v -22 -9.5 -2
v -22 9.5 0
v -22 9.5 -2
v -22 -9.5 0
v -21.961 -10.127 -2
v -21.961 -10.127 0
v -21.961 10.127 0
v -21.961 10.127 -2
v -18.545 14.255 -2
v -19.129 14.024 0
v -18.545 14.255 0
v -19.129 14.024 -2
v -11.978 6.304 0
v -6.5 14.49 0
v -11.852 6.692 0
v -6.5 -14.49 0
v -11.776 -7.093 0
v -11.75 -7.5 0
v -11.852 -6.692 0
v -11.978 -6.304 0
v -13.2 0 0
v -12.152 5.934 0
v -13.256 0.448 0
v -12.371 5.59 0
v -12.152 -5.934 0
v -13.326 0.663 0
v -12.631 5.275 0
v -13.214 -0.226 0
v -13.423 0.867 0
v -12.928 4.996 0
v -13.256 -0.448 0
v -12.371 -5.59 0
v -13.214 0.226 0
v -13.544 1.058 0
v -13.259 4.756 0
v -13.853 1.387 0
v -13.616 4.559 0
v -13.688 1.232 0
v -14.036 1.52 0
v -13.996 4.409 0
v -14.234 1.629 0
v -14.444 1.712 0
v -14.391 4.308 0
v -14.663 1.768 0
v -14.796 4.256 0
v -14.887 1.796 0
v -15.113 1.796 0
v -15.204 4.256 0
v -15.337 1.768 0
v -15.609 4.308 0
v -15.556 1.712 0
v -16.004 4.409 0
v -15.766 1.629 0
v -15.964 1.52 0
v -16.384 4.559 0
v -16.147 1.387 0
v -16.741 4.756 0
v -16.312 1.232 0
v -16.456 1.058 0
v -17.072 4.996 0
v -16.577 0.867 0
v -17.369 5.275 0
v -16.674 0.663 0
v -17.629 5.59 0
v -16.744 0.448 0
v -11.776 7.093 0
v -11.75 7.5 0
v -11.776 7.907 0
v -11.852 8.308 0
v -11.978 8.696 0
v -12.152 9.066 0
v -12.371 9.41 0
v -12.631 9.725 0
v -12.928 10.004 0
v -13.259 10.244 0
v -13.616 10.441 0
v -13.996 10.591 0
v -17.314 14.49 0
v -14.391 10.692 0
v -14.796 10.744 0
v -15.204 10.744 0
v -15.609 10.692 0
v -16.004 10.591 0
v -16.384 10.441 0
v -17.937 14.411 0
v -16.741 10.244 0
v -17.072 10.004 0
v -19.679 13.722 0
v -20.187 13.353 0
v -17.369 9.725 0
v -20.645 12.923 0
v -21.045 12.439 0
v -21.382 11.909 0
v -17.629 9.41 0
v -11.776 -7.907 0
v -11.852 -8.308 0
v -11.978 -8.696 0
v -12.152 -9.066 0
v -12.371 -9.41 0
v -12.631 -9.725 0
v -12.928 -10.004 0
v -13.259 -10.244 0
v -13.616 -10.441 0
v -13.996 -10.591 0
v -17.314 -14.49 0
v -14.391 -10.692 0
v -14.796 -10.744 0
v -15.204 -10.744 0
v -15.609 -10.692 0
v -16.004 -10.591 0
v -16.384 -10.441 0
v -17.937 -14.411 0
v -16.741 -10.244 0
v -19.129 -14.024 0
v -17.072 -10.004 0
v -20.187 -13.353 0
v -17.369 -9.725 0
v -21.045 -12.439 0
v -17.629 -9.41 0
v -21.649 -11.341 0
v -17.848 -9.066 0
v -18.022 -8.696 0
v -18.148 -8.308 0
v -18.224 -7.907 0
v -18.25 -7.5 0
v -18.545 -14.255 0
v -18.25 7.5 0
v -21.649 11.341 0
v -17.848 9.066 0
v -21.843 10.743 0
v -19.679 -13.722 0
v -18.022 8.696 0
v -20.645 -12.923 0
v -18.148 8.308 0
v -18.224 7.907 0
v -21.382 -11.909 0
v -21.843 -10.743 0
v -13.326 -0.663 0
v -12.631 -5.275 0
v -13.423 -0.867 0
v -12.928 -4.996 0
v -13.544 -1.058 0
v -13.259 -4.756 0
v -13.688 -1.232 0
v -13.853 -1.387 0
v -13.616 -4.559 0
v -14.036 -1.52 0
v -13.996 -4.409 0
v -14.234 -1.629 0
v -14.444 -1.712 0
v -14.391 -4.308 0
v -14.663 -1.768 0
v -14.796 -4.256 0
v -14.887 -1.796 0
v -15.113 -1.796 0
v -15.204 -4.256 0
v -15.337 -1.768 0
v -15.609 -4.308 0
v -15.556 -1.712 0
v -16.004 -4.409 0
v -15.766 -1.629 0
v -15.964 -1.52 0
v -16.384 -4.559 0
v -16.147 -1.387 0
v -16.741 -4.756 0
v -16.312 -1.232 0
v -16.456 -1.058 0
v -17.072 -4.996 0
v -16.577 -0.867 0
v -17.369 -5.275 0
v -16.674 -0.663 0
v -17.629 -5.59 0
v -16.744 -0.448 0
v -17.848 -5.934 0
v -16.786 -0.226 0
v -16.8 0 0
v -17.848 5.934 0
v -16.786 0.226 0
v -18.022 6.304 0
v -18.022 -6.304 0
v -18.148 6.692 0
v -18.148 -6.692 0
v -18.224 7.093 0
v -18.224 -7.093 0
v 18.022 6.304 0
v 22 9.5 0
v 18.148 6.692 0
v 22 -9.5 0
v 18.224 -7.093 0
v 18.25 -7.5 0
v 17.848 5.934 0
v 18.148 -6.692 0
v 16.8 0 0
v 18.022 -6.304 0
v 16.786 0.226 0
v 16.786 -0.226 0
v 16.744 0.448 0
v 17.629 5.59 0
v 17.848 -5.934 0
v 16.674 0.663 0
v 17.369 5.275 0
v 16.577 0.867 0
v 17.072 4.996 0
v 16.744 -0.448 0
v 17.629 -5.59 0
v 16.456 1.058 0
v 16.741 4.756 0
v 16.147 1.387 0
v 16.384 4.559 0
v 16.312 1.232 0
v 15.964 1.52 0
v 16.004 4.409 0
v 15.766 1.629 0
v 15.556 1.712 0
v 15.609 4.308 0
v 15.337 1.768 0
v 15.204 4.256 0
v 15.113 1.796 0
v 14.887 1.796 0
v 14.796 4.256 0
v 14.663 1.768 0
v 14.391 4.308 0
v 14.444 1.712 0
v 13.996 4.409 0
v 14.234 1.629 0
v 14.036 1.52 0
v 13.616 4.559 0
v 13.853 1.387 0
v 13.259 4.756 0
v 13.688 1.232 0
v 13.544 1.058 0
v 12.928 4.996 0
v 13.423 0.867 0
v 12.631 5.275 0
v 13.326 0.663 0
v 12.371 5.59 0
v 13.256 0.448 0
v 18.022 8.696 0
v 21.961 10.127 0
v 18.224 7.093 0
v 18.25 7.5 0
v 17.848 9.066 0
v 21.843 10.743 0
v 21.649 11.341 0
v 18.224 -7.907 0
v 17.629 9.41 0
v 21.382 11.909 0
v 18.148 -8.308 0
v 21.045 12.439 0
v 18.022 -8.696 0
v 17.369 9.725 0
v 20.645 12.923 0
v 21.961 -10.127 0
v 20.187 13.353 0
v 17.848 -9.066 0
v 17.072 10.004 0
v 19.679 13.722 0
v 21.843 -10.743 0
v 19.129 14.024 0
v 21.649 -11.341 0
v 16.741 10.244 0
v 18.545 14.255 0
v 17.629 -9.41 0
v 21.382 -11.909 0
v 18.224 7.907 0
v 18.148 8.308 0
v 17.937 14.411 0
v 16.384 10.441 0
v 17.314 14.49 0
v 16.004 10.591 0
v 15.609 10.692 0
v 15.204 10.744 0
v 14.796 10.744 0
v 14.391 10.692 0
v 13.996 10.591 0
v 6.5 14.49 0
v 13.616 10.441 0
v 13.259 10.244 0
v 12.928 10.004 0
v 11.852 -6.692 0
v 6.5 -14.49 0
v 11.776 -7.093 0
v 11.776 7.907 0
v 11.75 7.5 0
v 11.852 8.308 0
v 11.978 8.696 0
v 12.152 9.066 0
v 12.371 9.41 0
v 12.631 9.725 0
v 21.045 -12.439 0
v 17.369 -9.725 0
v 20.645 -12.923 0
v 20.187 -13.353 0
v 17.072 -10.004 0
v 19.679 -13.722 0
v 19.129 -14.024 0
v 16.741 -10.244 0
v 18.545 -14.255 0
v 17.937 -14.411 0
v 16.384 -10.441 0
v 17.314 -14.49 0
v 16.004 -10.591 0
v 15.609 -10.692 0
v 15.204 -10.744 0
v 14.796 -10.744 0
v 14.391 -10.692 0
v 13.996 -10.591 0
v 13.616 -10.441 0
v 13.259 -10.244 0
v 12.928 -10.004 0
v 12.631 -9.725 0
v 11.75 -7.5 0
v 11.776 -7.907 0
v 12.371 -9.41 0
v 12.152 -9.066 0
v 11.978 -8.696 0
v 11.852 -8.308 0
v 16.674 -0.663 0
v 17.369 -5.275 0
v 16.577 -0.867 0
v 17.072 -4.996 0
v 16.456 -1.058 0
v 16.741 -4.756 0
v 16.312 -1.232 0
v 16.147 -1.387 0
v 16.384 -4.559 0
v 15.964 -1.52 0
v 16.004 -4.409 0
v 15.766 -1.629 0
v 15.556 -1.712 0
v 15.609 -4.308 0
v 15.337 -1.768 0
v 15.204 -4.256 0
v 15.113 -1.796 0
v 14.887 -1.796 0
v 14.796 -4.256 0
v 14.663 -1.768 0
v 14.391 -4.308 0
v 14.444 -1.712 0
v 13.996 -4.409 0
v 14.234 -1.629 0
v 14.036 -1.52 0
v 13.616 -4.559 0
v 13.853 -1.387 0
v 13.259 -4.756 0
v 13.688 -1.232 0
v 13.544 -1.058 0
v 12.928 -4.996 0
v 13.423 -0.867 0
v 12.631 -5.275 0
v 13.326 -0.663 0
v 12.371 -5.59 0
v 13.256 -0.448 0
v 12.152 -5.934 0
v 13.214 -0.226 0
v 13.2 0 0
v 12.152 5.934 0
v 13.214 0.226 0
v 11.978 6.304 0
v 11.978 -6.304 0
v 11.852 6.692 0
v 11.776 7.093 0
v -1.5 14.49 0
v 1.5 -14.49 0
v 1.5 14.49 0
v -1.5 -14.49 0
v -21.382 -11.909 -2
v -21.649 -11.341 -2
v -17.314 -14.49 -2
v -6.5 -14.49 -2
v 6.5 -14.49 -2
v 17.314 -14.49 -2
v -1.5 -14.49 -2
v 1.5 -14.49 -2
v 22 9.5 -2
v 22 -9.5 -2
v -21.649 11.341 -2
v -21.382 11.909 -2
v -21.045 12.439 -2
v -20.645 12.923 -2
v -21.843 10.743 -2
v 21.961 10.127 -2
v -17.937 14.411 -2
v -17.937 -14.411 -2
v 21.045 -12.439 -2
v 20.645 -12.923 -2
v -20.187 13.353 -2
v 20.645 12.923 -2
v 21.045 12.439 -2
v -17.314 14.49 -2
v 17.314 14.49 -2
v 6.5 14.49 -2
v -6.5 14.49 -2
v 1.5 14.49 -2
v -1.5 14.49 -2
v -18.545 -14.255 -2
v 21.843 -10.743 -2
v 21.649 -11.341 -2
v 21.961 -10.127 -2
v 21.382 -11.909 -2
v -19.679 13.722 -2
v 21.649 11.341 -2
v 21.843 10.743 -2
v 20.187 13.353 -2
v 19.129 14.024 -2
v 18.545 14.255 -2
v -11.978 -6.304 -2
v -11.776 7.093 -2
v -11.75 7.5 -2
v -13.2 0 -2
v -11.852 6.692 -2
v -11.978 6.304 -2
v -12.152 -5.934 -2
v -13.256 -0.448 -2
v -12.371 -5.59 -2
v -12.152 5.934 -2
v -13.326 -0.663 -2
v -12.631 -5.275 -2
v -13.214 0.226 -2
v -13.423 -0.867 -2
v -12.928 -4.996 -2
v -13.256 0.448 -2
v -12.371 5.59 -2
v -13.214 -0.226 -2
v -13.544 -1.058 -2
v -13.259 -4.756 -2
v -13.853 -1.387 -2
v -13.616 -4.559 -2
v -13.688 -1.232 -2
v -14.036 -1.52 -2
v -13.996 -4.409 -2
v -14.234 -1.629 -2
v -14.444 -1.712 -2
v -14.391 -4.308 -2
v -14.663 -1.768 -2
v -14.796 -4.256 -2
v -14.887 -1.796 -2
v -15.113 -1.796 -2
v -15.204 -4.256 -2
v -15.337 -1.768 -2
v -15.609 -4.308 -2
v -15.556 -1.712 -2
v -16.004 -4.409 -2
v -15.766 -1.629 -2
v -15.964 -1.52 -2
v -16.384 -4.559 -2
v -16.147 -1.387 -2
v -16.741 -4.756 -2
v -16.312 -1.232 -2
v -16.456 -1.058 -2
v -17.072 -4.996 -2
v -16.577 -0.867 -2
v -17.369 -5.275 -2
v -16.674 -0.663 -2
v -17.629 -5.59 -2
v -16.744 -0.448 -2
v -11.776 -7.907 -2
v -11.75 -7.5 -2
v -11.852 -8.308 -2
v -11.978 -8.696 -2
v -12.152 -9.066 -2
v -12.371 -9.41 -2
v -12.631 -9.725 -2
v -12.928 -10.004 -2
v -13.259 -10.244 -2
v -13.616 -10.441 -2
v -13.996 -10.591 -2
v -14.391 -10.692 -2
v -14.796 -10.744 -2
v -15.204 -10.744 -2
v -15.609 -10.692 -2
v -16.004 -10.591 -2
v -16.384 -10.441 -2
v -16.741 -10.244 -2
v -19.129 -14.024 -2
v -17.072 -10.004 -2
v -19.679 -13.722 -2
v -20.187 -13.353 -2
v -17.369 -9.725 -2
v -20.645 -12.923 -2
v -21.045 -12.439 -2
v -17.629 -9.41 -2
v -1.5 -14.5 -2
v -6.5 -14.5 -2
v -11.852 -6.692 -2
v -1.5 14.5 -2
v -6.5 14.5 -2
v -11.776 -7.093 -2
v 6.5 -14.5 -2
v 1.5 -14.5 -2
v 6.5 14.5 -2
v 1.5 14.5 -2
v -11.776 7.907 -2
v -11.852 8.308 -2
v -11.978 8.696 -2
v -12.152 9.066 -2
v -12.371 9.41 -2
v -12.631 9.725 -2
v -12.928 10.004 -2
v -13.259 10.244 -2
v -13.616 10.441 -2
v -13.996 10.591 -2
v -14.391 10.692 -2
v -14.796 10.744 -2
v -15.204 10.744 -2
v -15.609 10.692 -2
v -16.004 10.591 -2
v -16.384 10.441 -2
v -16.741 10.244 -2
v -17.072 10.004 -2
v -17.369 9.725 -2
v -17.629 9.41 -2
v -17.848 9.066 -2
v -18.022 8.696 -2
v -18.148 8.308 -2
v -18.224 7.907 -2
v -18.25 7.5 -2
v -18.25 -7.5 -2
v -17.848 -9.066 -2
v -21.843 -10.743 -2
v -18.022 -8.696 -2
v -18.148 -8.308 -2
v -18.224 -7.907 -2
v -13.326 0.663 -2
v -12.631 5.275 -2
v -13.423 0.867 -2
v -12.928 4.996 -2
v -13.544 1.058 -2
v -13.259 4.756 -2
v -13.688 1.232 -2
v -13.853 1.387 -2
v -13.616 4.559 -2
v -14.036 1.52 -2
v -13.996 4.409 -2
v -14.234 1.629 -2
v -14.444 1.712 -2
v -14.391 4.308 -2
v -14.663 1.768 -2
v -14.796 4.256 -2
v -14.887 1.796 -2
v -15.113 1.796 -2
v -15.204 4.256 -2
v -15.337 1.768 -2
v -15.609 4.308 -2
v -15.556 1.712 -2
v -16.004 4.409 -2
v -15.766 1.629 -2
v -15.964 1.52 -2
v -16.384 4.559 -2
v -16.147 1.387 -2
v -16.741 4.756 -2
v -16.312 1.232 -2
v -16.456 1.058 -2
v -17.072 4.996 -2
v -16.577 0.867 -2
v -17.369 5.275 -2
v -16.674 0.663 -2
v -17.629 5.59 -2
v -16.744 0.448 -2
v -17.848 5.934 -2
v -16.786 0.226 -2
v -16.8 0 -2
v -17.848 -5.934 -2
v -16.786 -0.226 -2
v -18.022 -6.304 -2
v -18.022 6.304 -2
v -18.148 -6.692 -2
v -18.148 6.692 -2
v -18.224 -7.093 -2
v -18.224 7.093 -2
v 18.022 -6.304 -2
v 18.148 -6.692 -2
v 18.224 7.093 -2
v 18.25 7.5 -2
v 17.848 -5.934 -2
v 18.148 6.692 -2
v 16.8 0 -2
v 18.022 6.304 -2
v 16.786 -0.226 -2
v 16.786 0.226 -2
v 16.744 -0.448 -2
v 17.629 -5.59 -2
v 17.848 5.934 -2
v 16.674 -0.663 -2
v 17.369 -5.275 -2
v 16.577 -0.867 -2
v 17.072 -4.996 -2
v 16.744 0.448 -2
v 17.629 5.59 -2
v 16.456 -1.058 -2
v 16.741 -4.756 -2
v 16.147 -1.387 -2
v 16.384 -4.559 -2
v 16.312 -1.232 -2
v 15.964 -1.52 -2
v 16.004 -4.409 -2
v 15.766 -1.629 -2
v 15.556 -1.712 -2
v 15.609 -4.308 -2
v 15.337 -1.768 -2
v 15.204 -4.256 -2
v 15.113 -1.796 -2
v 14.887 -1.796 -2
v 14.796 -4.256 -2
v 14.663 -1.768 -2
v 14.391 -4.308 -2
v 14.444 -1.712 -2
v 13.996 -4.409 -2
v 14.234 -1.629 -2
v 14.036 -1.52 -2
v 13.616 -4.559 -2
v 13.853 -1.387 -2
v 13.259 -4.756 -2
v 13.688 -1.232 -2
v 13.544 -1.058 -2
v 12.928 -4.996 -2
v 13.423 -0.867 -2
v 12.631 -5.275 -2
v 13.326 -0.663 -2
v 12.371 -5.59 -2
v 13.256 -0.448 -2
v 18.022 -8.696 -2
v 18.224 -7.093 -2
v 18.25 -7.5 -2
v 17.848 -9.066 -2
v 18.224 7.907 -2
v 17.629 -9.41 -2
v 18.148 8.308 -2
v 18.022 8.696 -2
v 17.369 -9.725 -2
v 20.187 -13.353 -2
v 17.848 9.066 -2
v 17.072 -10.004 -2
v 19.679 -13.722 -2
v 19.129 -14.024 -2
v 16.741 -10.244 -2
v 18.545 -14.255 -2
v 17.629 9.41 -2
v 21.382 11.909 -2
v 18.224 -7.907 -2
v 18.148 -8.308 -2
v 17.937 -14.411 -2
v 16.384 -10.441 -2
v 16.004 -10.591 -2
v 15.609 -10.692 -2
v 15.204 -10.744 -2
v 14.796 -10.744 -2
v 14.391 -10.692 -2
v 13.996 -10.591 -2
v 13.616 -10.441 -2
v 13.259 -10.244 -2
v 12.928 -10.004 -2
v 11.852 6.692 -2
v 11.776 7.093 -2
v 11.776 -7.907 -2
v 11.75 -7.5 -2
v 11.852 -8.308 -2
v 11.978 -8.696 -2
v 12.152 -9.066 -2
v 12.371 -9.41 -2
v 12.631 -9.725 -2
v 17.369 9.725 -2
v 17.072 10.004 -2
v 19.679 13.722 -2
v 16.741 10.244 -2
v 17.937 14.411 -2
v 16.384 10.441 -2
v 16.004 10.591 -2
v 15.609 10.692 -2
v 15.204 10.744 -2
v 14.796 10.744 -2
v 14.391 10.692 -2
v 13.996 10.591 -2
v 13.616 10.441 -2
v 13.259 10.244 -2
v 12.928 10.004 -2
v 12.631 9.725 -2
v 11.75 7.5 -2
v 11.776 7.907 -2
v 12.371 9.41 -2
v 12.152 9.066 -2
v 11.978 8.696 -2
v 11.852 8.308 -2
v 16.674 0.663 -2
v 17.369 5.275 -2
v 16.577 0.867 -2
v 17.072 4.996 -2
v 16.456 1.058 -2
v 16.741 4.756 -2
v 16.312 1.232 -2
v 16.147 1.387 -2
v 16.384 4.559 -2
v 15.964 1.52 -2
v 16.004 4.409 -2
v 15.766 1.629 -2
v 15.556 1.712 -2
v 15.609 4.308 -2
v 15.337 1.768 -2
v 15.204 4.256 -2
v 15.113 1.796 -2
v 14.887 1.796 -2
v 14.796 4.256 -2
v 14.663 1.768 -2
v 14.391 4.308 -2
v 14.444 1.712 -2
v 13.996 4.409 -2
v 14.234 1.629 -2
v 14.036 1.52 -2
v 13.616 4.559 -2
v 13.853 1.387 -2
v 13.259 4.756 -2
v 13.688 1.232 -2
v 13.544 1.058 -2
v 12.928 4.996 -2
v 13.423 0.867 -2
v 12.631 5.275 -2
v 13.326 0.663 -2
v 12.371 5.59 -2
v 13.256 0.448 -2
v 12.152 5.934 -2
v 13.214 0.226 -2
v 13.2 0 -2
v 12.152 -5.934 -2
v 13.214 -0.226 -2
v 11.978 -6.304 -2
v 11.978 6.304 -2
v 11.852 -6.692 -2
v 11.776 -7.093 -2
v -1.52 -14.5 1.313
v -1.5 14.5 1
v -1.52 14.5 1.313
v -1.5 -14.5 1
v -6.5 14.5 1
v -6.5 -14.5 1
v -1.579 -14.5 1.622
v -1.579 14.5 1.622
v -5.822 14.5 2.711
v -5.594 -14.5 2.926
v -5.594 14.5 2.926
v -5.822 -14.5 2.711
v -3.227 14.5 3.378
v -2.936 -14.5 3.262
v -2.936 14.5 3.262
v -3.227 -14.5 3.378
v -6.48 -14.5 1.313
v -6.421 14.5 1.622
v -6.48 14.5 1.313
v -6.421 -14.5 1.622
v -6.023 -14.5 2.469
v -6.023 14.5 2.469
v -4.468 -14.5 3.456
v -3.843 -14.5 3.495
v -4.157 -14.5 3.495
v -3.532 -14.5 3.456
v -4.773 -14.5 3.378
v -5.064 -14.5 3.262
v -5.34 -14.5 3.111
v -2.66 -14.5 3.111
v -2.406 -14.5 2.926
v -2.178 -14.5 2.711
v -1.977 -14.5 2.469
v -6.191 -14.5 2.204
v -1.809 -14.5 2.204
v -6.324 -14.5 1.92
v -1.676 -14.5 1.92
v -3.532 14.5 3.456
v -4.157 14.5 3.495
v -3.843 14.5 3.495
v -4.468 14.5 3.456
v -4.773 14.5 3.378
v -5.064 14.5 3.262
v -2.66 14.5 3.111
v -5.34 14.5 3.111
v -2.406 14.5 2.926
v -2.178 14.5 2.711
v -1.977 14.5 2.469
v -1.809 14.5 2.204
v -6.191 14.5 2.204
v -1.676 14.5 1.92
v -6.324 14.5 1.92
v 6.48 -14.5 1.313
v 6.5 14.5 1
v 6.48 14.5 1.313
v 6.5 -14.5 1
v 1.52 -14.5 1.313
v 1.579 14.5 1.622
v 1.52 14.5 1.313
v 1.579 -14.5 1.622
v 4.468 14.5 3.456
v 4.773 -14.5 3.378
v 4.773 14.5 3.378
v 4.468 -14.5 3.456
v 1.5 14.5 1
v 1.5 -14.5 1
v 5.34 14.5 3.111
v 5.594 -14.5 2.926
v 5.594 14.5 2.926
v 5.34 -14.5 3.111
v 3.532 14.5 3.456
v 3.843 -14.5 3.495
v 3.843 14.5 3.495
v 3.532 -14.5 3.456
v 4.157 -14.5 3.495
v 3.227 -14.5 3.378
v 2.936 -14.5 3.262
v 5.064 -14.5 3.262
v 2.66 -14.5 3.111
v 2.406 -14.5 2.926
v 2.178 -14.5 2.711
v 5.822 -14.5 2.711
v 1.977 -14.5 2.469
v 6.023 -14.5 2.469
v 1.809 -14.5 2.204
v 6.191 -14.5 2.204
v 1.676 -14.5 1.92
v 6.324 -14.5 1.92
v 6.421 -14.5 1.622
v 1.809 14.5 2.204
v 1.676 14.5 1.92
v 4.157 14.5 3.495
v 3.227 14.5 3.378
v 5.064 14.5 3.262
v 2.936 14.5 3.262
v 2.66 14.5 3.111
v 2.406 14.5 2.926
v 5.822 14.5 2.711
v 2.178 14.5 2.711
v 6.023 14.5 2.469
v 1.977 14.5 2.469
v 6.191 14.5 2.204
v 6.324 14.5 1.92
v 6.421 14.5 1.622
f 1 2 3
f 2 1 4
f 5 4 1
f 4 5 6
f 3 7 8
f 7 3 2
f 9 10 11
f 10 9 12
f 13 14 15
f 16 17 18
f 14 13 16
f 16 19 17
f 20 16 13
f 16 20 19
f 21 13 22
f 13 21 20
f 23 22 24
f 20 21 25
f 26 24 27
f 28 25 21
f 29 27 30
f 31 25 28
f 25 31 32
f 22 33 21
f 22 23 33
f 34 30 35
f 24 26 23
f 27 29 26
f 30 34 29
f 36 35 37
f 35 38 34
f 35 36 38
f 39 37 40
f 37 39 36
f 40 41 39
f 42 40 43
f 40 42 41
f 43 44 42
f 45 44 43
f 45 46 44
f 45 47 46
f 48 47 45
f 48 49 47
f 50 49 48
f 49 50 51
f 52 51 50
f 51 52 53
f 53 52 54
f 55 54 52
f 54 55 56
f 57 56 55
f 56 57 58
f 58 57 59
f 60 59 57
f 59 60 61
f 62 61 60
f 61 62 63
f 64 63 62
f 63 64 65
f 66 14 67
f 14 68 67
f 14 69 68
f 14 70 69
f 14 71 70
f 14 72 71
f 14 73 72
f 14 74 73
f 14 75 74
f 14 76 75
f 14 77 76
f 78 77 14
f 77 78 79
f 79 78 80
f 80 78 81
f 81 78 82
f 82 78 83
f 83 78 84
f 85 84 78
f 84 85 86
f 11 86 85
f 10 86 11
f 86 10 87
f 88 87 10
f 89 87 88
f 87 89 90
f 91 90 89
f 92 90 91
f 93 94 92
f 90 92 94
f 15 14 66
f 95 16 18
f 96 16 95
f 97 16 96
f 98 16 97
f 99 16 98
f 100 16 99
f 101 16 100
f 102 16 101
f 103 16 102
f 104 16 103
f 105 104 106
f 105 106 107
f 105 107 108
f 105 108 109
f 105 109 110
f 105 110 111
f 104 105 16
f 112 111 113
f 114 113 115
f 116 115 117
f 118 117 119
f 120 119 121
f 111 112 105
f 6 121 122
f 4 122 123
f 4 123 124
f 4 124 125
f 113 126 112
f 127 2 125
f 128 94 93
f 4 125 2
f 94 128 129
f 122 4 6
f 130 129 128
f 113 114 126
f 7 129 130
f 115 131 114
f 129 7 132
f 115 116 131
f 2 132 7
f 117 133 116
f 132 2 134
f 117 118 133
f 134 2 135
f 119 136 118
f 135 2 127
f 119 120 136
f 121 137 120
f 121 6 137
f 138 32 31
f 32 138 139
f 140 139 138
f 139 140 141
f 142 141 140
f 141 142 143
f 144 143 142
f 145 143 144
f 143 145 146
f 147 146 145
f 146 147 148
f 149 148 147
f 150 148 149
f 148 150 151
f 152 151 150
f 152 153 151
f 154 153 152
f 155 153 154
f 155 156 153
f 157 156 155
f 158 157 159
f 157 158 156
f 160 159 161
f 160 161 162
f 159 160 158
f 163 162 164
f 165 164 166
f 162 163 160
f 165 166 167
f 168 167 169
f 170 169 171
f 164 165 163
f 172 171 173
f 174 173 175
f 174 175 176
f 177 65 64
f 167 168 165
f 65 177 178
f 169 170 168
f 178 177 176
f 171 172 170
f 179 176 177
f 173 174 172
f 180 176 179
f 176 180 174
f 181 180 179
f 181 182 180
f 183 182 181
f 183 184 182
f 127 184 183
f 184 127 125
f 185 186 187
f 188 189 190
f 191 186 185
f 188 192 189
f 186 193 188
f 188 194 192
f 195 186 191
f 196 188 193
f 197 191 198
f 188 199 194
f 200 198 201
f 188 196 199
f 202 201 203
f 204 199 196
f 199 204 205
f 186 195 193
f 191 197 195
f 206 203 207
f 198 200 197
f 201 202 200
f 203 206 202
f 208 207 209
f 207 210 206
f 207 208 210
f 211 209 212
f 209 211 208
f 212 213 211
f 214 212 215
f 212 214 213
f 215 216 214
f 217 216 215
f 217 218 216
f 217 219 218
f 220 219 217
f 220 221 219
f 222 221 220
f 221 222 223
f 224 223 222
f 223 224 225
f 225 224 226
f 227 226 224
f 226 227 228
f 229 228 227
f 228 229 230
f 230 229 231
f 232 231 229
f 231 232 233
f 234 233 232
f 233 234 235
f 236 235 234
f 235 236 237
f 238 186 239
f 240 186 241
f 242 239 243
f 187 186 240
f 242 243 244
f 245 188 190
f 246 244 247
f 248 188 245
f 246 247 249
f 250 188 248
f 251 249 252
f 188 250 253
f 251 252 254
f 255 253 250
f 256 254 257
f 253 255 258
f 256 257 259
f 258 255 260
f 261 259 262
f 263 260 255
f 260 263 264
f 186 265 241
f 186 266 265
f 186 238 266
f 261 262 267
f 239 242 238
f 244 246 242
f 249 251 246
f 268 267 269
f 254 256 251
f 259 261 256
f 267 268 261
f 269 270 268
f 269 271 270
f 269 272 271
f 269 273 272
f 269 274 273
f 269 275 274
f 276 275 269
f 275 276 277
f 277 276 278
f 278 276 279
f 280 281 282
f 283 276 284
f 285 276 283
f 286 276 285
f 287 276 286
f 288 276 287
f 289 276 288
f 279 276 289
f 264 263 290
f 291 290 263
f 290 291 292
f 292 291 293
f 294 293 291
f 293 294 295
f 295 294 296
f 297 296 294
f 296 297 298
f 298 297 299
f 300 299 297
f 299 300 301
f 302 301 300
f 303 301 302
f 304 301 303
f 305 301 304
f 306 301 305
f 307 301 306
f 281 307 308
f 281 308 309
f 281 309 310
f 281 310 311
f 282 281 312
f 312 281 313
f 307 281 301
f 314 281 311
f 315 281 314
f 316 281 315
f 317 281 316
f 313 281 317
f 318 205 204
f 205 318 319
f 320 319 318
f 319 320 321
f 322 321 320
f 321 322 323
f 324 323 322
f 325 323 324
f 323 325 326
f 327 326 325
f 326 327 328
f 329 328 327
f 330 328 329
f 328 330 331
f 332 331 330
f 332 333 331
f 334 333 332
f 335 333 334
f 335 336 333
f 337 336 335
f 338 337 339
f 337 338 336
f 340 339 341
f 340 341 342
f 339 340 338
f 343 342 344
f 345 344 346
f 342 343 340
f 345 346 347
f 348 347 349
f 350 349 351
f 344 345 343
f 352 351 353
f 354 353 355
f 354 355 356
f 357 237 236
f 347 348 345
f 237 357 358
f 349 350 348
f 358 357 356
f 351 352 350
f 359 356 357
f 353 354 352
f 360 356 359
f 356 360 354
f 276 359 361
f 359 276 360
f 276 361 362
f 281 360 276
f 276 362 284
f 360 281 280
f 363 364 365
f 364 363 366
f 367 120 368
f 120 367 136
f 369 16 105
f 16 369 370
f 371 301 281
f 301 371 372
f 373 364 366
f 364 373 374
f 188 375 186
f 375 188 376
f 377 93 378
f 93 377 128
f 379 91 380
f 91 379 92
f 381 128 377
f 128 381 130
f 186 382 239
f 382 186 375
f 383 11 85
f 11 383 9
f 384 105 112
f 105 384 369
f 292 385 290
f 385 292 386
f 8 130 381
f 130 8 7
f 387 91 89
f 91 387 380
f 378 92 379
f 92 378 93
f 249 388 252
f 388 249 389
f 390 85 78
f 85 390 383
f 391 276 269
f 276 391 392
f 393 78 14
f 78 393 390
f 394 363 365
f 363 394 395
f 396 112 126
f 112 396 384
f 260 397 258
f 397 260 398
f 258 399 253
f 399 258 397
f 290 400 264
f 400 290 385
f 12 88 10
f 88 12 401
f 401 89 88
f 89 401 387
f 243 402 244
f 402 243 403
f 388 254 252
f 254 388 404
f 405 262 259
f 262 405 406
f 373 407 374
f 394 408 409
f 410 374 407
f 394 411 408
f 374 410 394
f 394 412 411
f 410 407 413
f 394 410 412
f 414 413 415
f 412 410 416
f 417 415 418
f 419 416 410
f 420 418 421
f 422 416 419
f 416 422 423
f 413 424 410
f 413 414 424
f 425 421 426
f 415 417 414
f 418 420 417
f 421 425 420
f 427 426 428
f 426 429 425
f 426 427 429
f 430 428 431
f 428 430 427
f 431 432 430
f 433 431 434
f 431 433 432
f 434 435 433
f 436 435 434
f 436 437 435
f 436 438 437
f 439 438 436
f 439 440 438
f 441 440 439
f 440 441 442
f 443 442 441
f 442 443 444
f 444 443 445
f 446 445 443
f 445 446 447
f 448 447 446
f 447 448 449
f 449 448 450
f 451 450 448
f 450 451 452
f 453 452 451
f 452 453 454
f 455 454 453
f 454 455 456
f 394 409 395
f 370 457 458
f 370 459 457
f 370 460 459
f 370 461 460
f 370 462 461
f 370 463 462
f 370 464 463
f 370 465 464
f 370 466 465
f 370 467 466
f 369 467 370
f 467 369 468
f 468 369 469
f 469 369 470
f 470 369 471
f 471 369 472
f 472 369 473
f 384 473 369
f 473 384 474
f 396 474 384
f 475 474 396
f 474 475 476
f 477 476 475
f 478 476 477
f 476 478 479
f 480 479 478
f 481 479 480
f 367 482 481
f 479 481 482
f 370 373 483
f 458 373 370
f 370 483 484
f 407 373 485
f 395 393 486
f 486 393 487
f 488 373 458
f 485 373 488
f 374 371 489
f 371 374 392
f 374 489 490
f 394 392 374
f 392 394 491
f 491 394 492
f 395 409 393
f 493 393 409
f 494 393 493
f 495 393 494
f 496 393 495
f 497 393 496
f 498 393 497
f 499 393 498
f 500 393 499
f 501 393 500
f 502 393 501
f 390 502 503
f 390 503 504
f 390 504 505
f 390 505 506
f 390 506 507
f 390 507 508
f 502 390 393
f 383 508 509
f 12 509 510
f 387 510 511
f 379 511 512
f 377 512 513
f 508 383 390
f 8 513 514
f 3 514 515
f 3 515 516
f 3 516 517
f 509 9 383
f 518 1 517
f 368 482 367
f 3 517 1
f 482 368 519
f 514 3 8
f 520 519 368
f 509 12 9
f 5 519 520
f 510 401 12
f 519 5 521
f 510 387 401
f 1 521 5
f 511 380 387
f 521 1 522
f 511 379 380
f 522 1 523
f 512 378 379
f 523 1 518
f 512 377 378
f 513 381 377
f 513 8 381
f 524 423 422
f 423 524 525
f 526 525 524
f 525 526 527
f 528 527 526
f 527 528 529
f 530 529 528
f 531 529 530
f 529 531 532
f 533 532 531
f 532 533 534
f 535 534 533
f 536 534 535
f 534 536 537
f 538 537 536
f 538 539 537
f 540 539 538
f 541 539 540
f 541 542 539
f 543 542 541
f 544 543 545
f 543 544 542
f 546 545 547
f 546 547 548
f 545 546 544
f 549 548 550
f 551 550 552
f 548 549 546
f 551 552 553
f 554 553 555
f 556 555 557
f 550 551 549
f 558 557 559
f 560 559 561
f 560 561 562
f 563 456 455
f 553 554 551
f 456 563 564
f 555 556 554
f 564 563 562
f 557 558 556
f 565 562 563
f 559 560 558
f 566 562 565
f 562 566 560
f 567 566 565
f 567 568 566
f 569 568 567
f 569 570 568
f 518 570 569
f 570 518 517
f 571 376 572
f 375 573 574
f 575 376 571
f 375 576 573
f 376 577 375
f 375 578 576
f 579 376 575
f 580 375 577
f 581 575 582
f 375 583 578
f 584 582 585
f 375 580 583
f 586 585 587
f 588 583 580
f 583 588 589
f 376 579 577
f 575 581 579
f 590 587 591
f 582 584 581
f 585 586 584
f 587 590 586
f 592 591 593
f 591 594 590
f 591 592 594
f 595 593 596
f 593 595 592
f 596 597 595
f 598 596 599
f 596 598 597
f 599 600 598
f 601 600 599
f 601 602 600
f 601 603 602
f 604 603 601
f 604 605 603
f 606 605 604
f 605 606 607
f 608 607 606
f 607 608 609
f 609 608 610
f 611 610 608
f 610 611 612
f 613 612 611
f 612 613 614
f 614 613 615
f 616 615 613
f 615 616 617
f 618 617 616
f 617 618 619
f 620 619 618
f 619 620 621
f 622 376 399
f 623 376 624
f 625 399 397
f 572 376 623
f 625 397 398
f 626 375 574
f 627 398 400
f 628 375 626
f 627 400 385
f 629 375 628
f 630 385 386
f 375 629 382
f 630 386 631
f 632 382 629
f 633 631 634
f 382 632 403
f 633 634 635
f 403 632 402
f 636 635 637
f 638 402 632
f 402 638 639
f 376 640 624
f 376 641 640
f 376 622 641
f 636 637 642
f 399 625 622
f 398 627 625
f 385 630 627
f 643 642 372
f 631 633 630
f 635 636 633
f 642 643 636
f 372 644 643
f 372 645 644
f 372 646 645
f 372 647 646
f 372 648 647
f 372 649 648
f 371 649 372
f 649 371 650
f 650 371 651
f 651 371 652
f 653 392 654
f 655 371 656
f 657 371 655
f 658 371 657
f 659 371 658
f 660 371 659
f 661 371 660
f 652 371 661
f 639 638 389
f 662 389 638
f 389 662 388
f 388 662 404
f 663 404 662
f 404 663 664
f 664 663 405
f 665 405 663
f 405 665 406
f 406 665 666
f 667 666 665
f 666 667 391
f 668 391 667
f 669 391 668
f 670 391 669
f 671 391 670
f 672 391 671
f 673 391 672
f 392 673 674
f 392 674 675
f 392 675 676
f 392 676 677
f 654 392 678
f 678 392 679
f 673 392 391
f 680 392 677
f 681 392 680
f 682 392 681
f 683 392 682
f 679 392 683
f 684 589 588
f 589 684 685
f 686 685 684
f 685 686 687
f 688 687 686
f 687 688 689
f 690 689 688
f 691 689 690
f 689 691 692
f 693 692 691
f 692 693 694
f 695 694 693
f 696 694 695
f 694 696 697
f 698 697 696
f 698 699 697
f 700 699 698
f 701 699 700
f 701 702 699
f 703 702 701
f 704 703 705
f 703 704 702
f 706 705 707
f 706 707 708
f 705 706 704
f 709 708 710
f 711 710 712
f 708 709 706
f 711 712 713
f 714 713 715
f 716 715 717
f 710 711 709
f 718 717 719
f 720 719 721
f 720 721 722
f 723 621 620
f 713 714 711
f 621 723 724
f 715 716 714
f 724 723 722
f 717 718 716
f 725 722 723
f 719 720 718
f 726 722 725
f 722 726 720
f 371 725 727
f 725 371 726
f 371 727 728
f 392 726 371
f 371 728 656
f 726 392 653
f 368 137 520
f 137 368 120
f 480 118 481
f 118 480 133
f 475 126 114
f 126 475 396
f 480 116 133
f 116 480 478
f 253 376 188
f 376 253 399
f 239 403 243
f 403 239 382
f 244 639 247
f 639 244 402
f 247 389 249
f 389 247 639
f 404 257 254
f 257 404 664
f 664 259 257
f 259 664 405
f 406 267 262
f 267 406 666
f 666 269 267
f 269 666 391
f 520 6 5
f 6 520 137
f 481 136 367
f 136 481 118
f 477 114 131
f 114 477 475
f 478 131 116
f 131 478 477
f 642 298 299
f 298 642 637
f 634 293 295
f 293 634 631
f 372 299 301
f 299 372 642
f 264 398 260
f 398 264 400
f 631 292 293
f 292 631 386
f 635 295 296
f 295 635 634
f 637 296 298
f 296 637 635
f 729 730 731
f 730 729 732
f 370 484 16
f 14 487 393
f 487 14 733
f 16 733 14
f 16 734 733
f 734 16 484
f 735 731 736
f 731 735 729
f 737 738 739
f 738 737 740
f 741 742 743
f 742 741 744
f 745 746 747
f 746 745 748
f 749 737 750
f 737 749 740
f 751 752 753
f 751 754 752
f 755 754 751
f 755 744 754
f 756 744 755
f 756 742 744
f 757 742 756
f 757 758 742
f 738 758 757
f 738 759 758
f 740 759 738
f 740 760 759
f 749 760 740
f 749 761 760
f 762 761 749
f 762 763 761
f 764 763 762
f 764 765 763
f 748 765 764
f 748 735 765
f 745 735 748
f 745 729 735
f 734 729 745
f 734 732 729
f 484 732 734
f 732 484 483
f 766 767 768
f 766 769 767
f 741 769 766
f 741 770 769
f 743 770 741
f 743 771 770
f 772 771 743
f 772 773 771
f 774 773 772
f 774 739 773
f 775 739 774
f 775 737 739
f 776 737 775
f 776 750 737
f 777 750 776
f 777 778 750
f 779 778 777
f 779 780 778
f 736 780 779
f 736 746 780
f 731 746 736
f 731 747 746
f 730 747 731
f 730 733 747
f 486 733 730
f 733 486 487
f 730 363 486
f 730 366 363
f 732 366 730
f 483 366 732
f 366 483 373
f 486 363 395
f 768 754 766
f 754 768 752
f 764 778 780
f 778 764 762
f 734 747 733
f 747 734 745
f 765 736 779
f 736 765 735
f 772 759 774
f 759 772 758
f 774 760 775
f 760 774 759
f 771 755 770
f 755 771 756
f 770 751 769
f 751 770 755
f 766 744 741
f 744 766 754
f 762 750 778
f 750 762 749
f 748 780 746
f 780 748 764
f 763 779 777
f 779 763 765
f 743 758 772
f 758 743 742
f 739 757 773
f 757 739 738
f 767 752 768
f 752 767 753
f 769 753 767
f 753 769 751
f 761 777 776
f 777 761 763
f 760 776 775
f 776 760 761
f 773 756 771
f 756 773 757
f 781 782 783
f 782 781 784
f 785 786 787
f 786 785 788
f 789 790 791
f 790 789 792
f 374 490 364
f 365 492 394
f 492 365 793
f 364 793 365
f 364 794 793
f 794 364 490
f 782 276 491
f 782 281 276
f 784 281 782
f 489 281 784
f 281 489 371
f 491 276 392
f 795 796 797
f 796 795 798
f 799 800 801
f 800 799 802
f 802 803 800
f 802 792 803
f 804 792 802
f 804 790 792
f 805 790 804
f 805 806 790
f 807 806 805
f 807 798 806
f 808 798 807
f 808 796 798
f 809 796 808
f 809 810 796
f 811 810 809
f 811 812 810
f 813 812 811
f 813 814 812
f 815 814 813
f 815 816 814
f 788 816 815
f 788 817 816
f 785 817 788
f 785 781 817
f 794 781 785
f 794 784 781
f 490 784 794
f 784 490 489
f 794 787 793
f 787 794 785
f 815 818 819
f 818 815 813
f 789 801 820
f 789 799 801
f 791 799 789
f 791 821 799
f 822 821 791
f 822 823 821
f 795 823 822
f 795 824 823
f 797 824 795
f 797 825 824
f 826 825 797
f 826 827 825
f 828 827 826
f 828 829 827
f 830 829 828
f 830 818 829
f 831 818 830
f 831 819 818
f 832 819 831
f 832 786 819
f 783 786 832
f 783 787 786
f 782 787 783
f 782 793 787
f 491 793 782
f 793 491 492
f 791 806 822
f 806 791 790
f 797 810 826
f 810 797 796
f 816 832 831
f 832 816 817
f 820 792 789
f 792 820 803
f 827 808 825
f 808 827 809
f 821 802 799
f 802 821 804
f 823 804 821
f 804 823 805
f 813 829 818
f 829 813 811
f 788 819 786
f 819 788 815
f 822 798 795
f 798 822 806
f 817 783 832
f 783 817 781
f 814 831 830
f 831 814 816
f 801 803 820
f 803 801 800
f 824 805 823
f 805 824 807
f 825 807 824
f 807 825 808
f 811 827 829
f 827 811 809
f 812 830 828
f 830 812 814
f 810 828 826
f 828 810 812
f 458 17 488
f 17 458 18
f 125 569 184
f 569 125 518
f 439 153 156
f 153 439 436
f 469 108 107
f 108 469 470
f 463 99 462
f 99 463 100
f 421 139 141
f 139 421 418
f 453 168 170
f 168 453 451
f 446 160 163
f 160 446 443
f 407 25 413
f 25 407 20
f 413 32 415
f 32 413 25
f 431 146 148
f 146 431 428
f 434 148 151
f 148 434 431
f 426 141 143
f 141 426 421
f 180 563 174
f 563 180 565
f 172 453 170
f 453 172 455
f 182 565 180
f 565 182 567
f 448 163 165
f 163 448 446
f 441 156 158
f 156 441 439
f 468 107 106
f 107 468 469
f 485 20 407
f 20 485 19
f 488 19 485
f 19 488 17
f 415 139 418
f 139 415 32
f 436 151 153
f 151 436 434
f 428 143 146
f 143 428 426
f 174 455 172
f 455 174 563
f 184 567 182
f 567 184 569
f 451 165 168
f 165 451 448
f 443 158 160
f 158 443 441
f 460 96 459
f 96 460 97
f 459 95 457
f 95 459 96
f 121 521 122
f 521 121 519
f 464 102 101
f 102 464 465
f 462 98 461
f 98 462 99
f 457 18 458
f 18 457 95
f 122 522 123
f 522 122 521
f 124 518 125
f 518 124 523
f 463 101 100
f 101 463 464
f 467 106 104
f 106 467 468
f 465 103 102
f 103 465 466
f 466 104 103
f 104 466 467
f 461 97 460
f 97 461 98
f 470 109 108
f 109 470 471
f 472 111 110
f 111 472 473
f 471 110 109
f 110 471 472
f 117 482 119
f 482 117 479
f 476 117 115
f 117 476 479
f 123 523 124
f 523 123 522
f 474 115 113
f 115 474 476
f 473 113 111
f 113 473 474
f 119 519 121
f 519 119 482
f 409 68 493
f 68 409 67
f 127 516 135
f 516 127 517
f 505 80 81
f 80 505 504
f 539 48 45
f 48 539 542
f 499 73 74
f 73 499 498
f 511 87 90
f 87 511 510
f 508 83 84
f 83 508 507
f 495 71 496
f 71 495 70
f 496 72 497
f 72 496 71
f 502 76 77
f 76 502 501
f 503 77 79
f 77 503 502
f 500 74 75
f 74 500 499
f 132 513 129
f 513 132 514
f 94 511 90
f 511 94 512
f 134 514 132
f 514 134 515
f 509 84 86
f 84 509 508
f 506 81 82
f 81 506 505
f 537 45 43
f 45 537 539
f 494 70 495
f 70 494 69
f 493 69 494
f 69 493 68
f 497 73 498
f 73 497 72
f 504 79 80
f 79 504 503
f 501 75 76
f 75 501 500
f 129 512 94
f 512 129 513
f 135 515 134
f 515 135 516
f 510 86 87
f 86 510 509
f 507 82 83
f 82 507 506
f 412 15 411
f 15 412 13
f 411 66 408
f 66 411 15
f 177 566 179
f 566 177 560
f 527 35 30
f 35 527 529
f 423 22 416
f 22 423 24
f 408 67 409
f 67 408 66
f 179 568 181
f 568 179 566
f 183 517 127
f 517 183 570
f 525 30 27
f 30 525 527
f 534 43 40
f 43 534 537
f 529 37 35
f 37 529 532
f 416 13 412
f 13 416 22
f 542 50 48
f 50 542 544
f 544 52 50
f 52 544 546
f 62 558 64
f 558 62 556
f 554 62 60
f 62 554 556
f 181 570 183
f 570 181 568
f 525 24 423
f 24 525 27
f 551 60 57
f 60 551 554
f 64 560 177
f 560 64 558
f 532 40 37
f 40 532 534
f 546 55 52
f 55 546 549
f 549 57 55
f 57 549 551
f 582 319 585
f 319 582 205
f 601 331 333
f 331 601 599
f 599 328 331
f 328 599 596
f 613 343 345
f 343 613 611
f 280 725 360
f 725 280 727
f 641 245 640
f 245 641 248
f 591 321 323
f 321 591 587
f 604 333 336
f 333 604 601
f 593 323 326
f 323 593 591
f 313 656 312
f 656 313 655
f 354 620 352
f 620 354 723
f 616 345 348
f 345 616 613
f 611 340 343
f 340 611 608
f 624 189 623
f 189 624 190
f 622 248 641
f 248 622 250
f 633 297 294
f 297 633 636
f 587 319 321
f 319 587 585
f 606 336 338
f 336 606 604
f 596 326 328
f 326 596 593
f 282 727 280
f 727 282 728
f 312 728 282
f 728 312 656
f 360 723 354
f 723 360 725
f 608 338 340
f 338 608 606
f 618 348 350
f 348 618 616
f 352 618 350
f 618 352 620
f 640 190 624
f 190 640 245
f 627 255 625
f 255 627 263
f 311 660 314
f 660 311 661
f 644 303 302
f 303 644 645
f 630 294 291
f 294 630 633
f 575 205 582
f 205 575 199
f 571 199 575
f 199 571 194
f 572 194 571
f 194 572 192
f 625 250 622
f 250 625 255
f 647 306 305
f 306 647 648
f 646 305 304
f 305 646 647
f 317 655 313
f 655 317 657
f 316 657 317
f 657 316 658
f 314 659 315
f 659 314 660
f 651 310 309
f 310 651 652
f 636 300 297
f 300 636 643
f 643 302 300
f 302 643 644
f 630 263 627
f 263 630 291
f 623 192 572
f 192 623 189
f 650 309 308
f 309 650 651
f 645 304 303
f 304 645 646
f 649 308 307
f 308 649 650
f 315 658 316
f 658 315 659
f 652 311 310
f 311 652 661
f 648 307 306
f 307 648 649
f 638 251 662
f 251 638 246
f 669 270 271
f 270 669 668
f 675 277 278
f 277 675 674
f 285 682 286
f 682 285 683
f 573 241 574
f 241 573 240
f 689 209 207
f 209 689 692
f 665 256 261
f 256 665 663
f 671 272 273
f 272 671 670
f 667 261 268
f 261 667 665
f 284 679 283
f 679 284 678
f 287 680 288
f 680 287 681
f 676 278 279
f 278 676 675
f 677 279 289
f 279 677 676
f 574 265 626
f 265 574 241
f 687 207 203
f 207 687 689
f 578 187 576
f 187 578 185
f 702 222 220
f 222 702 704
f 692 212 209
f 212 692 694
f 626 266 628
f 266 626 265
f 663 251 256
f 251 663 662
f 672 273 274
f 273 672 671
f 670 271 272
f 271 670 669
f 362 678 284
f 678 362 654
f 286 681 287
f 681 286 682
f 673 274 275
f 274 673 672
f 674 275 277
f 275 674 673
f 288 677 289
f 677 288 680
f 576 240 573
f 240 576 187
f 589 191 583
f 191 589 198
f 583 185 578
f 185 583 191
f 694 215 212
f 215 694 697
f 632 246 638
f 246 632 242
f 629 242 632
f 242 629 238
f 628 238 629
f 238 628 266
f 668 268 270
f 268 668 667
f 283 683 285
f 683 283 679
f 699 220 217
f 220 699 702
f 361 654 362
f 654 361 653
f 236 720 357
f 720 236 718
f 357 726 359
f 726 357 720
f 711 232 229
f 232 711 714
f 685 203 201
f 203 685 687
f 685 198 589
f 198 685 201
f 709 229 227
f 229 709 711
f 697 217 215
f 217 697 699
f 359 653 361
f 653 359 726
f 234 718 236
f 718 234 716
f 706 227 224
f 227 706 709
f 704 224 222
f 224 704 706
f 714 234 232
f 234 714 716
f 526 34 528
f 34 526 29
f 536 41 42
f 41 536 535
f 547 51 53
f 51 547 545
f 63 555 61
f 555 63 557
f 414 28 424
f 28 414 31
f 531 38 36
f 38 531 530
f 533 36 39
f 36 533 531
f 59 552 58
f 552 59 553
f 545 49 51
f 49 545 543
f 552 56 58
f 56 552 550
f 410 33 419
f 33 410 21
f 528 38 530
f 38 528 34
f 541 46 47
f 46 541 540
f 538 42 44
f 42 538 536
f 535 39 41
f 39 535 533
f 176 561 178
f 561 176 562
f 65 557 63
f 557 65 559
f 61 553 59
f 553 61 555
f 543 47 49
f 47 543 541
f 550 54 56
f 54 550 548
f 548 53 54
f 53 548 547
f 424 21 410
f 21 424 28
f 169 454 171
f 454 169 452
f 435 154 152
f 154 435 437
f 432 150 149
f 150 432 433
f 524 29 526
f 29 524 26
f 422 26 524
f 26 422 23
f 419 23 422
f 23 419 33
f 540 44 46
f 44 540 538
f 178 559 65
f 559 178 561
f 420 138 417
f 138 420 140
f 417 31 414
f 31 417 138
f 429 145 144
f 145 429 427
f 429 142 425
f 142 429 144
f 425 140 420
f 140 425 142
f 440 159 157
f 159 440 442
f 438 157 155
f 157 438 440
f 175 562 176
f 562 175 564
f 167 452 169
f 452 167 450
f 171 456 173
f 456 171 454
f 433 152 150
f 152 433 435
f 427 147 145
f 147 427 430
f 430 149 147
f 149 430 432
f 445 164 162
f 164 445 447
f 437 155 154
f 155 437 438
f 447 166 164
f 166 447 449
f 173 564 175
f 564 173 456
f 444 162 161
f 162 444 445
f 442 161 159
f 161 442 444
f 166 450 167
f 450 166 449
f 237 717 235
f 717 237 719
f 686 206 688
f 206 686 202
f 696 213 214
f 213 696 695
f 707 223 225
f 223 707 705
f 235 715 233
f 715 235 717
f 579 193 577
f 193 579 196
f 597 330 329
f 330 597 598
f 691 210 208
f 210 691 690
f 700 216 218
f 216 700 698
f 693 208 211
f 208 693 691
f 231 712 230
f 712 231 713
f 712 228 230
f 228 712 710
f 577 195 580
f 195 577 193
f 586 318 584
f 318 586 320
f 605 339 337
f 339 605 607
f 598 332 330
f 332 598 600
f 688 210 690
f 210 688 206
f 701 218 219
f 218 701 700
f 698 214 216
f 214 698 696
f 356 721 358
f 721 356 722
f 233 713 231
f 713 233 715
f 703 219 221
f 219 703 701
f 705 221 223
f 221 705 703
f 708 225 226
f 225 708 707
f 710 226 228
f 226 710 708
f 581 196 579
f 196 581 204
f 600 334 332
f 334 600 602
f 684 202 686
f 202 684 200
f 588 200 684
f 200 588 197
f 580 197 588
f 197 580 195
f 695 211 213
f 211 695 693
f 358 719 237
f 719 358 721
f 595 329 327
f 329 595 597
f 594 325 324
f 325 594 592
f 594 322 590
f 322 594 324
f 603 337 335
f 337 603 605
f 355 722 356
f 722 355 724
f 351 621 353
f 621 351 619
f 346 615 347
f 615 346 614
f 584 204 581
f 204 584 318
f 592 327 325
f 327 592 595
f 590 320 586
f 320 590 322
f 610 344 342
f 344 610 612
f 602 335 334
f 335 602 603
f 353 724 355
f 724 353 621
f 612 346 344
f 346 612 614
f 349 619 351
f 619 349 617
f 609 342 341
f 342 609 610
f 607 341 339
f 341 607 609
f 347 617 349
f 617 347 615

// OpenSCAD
$fn = 50;


difference() {
	union() {
		translate(v = [0, 0, -2]) {
			hull() {
				translate(v = [-17.0000000000, 9.5000000000, 0]) {
					cylinder(h = 2, r = 5);
				}
				translate(v = [17.0000000000, 9.5000000000, 0]) {
					cylinder(h = 2, r = 5);
				}
				translate(v = [-17.0000000000, -9.5000000000, 0]) {
					cylinder(h = 2, r = 5);
				}
				translate(v = [17.0000000000, -9.5000000000, 0]) {
					cylinder(h = 2, r = 5);
				}
			}
		}
		translate(v = [-4.0000000000, 14.5000000000, -1.5000000000]) {
			rotate(a = [90, 0, 0]) {
				hull() {
					translate(v = [-0.0000000000, 2.5000000000, 0]) {
						cylinder(h = 29, r = 2.5000000000);
					}
					translate(v = [0.0000000000, 2.5000000000, 0]) {
						cylinder(h = 29, r = 2.5000000000);
					}
					translate(v = [-0.0000000000, -2.5000000000, 0]) {
						cylinder(h = 29, r = 2.5000000000);
					}
					translate(v = [0.0000000000, -2.5000000000, 0]) {
						cylinder(h = 29, r = 2.5000000000);
					}
				}
			}
		}
		translate(v = [4.0000000000, 14.5000000000, -1.5000000000]) {
			rotate(a = [90, 0, 0]) {
				hull() {
					translate(v = [-0.0000000000, 2.5000000000, 0]) {
						cylinder(h = 29, r = 2.5000000000);
					}
					translate(v = [0.0000000000, 2.5000000000, 0]) {
						cylinder(h = 29, r = 2.5000000000);
					}
					translate(v = [-0.0000000000, -2.5000000000, 0]) {
						cylinder(h = 29, r = 2.5000000000);
					}
					translate(v = [0.0000000000, -2.5000000000, 0]) {
						cylinder(h = 29, r = 2.5000000000);
					}
				}
			}
		}
	}
	union() {
		translate(v = [-250.0000000000, -250.0000000000, -502]) {
			cube(size = [500, 500, 500]);
		}
		translate(v = [-250.0000000000, -250.0000000000, -502]) {
			cube(size = [500, 500, 500]);
		}
		translate(v = [-250.0000000000, -250.0000000000, -502]) {
			cube(size = [500, 500, 500]);
		}
		translate(v = [-15.0000000000, -7.5000000000, -100.0000000000]) {
			cylinder(h = 200, r = 3.2500000000);
		}
		translate(v = [-15.0000000000, 7.5000000000, -100.0000000000]) {
			cylinder(h = 200, r = 3.2500000000);
		}
		translate(v = [15.0000000000, -7.5000000000, -100.0000000000]) {
			cylinder(h = 200, r = 3.2500000000);
		}
		translate(v = [15.0000000000, 7.5000000000, -100.0000000000]) {
			cylinder(h = 200, r = 3.2500000000);
		}
		translate(v = [15.0000000000, -7.5000000000, -100.0000000000]) {
			cylinder(h = 200, r = 3.2500000000);
		}
		translate(v = [15.0000000000, 7.5000000000, -100.0000000000]) {
			cylinder(h = 200, r = 3.2500000000);
		}
		translate(v = [-15.0000000000, -7.5000000000, -100.0000000000]) {
			cylinder(h = 200, r = 1.8000000000);
		}
		translate(v = [-15.0000000000, 0.0000000000, -100.0000000000]) {
			cylinder(h = 200, r = 1.8000000000);
		}
		translate(v = [-15.0000000000, 7.5000000000, -100.0000000000]) {
			cylinder(h = 200, r = 1.8000000000);
		}
		translate(v = [15.0000000000, -7.5000000000, -100.0000000000]) {
			cylinder(h = 200, r = 1.8000000000);
		}
		translate(v = [15.0000000000, 0.0000000000, -100.0000000000]) {
			cylinder(h = 200, r = 1.8000000000);
		}
		translate(v = [15.0000000000, 7.5000000000, -100.0000000000]) {
			cylinder(h = 200, r = 1.8000000000);
		}
		translate(v = [-15.0000000000, -7.5000000000, -100.0000000000]) {
			cylinder(h = 200, r = 1.8000000000);
		}
		translate(v = [-15.0000000000, 0.0000000000, -100.0000000000]) {
			cylinder(h = 200, r = 1.8000000000);
		}
		translate(v = [-15.0000000000, 7.5000000000, -100.0000000000]) {
			cylinder(h = 200, r = 1.8000000000);
		}
		translate(v = [15.0000000000, -7.5000000000, -100.0000000000]) {
			cylinder(h = 200, r = 1.8000000000);
		}
		translate(v = [15.0000000000, 0.0000000000, -100.0000000000]) {
			cylinder(h = 200, r = 1.8000000000);
		}
		translate(v = [15.0000000000, 7.5000000000, -100.0000000000]) {
			cylinder(h = 200, r = 1.8000000000);
		}
		translate(v = [-15.0000000000, -7.5000000000, -100.0000000000]) {
			cylinder(h = 200, r = 1.8000000000);
		}
		translate(v = [-15.0000000000, 0.0000000000, -100.0000000000]) {
			cylinder(h = 200, r = 1.8000000000);
		}
		translate(v = [-15.0000000000, 7.5000000000, -100.0000000000]) {
			cylinder(h = 200, r = 1.8000000000);
		}
		translate(v = [15.0000000000, -7.5000000000, -100.0000000000]) {
			cylinder(h = 200, r = 1.8000000000);
		}
		translate(v = [15.0000000000, 0.0000000000, -100.0000000000]) {
			cylinder(h = 200, r = 1.8000000000);
		}
		translate(v = [15.0000000000, 7.5000000000, -100.0000000000]) {
			cylinder(h = 200, r = 1.8000000000);
		}
	}
}
